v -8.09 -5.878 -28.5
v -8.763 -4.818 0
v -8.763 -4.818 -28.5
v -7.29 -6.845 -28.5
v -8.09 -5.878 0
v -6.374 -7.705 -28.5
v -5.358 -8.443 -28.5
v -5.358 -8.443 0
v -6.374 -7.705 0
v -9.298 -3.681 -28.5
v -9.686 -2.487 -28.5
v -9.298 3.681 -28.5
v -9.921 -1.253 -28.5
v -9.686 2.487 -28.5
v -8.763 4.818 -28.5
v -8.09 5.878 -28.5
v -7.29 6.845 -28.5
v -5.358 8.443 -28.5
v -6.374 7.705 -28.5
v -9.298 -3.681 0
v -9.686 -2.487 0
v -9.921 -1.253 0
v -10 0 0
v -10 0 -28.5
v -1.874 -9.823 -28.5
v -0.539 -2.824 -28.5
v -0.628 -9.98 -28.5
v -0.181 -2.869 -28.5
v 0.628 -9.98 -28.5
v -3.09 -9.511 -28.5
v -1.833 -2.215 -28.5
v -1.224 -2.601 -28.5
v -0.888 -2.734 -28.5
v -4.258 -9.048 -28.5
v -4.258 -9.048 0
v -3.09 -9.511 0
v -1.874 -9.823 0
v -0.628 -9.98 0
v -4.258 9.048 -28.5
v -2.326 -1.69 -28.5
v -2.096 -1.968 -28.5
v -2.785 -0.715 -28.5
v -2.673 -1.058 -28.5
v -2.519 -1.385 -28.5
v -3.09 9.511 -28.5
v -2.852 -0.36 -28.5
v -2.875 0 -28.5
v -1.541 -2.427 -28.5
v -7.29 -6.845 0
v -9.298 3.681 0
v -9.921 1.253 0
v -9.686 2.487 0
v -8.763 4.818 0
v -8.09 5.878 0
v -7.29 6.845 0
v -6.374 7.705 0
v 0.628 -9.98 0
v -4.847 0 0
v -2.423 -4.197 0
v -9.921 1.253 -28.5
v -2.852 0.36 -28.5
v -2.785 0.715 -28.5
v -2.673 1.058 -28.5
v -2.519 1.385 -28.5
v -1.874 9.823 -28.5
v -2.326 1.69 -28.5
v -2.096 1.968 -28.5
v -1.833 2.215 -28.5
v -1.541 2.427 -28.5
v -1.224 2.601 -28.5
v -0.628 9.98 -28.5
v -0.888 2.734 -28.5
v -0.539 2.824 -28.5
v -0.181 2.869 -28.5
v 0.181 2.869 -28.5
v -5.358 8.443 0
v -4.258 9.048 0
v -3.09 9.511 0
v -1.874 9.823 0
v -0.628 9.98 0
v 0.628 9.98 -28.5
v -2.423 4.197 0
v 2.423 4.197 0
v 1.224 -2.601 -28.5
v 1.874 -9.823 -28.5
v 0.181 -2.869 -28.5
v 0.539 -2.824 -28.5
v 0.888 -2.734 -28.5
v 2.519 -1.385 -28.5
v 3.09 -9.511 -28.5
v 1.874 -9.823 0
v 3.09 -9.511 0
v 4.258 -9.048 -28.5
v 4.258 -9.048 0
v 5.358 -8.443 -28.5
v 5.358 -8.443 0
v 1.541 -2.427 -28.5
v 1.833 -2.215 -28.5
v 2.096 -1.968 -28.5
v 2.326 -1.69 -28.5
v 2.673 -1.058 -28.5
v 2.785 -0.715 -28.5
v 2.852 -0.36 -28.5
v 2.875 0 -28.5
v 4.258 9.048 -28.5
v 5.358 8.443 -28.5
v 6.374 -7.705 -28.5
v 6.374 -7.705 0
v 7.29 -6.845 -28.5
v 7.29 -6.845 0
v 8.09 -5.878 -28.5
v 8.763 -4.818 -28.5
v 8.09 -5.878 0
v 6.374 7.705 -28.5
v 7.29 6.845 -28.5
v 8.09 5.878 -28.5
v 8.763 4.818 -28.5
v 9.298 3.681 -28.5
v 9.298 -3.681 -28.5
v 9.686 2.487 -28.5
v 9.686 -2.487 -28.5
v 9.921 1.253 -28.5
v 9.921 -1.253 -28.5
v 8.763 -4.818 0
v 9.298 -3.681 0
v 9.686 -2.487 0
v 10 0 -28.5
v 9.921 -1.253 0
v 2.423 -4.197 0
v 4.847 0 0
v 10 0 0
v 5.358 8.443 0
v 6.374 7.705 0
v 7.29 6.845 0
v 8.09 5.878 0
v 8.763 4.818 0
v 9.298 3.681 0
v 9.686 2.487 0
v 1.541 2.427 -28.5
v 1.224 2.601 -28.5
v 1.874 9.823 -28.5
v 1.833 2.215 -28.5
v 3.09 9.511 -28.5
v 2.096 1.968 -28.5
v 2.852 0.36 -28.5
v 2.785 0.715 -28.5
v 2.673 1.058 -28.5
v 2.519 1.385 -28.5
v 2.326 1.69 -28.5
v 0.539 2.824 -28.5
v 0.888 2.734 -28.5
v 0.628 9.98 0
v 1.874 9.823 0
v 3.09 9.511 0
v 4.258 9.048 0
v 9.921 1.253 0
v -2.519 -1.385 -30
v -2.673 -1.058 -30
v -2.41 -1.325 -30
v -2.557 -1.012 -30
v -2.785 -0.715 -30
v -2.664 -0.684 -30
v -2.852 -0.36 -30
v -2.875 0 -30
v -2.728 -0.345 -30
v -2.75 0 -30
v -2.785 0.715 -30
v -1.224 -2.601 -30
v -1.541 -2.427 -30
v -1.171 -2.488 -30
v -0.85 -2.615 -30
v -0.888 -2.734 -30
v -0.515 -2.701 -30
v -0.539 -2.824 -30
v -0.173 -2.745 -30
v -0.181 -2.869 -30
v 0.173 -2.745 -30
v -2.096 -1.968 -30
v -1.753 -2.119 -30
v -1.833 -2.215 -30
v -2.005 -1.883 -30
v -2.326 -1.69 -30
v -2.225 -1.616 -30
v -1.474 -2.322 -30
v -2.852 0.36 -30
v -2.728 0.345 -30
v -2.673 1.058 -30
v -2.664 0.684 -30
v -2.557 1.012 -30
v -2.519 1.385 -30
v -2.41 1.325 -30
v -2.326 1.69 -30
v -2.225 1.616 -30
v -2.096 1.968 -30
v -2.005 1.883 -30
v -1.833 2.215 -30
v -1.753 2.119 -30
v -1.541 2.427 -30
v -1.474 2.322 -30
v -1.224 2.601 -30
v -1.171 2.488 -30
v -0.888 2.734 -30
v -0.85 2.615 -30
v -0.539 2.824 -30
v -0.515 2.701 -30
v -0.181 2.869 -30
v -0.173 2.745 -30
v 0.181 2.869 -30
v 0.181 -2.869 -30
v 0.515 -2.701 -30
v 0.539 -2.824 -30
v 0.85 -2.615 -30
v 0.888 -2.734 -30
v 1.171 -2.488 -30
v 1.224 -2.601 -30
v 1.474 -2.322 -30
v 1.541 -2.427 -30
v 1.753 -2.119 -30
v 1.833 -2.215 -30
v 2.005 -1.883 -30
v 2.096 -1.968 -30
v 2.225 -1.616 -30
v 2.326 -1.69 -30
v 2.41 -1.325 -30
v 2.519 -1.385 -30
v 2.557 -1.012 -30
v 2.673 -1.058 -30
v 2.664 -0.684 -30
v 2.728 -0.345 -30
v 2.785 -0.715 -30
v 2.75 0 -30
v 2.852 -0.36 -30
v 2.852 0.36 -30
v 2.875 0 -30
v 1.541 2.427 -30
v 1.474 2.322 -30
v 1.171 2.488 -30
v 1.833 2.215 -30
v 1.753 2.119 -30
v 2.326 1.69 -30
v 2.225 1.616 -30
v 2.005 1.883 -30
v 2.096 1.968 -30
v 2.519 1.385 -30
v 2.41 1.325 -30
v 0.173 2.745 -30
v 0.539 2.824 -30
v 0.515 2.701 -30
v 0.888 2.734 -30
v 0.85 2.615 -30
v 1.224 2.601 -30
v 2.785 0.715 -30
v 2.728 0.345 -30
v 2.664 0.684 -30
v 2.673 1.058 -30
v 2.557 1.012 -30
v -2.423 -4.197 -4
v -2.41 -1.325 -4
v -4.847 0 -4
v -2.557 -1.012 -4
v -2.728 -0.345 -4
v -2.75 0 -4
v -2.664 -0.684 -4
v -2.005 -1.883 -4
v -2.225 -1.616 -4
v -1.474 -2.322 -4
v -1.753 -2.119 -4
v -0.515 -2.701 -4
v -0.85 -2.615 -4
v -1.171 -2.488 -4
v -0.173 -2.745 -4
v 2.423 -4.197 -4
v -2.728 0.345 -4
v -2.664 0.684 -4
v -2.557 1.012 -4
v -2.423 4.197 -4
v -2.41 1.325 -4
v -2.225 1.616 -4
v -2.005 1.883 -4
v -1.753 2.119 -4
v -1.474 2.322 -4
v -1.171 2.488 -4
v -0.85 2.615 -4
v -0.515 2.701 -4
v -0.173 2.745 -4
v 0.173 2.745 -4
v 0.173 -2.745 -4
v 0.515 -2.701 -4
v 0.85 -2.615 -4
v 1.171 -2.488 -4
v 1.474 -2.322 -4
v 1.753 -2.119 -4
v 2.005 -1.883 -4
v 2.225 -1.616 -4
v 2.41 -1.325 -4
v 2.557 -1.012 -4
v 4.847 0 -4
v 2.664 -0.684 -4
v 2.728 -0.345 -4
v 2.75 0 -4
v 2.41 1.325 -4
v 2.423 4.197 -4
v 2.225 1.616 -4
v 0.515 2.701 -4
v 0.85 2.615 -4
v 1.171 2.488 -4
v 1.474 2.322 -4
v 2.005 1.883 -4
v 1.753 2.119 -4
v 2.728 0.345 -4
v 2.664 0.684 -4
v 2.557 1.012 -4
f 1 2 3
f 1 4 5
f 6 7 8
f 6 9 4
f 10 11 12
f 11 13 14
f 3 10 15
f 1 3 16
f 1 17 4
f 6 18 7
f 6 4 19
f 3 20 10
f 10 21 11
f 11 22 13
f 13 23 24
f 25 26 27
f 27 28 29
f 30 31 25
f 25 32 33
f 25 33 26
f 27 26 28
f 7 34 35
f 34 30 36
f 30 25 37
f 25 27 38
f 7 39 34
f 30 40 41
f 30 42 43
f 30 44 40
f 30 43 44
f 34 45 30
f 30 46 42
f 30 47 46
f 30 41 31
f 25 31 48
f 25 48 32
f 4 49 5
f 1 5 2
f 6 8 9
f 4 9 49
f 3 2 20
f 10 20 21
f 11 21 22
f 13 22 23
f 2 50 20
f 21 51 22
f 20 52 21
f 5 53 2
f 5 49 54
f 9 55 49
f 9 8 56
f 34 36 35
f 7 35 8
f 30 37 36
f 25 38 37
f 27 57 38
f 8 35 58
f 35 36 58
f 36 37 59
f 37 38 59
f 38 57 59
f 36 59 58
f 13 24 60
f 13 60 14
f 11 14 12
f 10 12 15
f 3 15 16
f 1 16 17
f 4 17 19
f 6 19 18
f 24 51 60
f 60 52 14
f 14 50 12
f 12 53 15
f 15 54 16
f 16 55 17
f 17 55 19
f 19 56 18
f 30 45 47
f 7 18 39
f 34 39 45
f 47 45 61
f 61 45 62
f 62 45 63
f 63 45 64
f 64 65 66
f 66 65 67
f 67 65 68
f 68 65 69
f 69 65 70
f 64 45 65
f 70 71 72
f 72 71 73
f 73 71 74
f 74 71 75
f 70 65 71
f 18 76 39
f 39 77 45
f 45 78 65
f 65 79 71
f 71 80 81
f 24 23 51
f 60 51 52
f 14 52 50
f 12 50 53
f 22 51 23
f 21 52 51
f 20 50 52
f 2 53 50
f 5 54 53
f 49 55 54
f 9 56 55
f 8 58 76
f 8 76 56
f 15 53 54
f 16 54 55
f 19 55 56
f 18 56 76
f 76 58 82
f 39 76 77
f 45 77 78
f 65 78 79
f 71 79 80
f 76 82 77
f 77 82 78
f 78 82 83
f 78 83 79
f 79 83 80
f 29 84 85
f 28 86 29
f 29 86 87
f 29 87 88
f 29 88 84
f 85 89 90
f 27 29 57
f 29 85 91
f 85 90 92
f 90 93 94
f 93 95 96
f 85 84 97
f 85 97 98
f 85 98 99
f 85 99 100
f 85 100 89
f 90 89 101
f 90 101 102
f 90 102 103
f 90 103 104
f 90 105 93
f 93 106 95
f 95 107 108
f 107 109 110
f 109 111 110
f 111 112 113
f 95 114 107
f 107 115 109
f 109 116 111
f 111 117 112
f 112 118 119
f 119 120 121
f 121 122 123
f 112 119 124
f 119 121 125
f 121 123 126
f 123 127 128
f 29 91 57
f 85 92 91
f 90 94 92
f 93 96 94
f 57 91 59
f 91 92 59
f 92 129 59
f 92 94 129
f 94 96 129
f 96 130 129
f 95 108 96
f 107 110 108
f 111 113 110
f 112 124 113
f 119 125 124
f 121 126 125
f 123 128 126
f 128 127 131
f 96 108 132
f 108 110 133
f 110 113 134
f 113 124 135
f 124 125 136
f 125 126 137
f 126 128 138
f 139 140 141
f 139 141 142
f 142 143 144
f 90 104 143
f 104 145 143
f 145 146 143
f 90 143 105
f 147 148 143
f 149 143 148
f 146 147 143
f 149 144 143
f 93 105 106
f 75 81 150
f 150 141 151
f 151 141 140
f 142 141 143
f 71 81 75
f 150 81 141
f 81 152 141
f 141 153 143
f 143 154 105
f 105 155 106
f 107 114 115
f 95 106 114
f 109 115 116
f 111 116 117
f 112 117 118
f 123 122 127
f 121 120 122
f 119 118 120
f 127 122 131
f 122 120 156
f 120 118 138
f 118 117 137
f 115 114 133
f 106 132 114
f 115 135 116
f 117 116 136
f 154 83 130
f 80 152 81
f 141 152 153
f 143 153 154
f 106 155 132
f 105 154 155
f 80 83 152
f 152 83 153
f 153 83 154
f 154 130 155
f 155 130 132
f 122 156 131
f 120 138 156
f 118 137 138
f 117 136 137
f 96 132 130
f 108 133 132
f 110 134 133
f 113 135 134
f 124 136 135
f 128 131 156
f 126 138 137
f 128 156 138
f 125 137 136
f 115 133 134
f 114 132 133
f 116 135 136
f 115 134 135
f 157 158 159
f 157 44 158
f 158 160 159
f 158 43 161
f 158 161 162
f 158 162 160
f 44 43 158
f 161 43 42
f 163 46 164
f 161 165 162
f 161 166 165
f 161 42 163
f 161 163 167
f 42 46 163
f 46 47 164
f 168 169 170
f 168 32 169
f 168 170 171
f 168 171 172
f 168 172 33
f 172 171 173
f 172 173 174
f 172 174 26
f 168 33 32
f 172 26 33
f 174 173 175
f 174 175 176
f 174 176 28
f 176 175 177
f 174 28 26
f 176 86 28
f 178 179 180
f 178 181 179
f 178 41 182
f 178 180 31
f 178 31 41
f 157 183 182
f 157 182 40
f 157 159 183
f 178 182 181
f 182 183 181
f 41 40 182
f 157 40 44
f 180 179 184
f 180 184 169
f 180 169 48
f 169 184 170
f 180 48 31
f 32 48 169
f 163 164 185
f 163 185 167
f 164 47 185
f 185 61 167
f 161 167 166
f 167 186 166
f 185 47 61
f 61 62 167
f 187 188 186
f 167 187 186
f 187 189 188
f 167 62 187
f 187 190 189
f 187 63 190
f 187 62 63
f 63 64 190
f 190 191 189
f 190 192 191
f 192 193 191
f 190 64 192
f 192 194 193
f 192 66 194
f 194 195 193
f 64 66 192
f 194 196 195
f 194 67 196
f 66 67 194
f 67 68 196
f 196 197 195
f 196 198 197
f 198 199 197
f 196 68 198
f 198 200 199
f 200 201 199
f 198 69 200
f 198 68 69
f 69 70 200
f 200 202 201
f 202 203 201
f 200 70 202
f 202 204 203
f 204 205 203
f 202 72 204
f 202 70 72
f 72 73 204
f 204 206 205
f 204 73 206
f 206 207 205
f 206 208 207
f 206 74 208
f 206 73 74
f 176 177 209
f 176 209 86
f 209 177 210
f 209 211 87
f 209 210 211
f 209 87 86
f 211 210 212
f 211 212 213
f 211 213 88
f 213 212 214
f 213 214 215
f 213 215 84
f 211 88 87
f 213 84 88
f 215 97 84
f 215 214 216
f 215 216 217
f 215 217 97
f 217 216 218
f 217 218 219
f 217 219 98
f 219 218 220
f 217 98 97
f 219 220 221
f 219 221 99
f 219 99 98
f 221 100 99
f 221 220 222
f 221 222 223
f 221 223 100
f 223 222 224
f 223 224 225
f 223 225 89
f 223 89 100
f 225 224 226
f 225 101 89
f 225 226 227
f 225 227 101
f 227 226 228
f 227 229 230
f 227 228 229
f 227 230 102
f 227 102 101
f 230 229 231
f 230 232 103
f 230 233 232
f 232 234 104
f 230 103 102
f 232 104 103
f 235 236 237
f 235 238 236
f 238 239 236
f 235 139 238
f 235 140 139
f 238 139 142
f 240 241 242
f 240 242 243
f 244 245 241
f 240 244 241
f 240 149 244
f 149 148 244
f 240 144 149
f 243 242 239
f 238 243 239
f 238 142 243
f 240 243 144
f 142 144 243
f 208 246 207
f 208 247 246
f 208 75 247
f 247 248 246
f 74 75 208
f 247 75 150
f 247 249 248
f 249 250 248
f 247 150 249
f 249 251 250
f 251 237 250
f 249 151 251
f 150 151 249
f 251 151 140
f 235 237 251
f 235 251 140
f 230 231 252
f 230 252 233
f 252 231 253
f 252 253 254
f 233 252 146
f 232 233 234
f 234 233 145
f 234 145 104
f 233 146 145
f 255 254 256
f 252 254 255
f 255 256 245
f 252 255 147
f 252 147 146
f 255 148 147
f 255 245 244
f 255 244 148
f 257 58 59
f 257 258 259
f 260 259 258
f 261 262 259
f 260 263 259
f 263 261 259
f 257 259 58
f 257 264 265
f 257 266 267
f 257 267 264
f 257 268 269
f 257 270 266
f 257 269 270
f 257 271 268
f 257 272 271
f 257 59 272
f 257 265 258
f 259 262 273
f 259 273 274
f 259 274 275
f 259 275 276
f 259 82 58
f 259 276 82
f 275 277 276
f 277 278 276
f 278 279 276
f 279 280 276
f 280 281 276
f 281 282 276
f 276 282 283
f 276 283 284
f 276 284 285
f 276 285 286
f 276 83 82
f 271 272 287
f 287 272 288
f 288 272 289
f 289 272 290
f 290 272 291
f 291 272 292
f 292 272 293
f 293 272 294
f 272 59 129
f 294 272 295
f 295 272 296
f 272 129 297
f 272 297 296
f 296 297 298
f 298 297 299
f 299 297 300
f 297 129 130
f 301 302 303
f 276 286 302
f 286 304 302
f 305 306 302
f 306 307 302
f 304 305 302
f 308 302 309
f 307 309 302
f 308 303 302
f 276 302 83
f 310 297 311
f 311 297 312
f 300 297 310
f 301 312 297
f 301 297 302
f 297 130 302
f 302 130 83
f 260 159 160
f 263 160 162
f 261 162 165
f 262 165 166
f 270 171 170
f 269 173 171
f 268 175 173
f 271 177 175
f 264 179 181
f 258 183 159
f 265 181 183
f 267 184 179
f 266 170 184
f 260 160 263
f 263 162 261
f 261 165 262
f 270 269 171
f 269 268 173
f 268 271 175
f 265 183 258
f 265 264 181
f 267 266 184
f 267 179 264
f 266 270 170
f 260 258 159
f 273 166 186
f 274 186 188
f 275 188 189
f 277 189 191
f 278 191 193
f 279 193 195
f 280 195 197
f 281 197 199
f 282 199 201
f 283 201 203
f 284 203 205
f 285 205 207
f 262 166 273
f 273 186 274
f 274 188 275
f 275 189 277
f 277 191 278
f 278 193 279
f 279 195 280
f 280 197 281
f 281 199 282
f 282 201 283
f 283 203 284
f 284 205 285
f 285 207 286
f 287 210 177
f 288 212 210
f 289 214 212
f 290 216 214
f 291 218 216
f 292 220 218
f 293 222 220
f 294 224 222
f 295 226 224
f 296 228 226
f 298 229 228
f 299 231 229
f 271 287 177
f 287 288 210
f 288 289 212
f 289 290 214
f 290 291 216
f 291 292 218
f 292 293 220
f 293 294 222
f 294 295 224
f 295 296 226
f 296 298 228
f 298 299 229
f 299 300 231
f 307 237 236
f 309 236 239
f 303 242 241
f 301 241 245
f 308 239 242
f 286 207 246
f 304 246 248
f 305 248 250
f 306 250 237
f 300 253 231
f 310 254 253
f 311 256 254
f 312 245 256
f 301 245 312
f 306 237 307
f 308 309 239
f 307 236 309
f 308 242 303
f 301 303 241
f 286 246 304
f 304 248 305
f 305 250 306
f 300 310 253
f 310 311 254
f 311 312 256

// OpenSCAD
$fn = 50;


difference() {
	union() {
		translate(v = [0, 0, -28.5000000000]) {
			cylinder(h = 28.5000000000, r = 10.0000000000);
		}
		#translate(v = [0, 0, -30.0000000000]) {
			cylinder(h = 30, r = 2.8750000000);
		}
	}
	union() {
		translate(v = [0, 0, 0]) {
			rotate(a = [0, 0, 0]) {
				difference() {
					union() {
						translate(v = [0, 0, -4]) {
							linear_extrude(height = 4) {
								polygon(points = [[4.8468000000, 0.0000000000], [2.4234000000, 4.1974519271], [-2.4234000000, 4.1974519271], [-4.8468000000, 0.0000000000], [-2.4234000000, -4.1974519271], [2.4234000000, -4.1974519271]]);
							}
						}
					}
					union();
				}
			}
		}
		#translate(v = [0, 0, -100.0000000000]) {
			cylinder(h = 200, r = 2.7500000000);
		}
	}
}
